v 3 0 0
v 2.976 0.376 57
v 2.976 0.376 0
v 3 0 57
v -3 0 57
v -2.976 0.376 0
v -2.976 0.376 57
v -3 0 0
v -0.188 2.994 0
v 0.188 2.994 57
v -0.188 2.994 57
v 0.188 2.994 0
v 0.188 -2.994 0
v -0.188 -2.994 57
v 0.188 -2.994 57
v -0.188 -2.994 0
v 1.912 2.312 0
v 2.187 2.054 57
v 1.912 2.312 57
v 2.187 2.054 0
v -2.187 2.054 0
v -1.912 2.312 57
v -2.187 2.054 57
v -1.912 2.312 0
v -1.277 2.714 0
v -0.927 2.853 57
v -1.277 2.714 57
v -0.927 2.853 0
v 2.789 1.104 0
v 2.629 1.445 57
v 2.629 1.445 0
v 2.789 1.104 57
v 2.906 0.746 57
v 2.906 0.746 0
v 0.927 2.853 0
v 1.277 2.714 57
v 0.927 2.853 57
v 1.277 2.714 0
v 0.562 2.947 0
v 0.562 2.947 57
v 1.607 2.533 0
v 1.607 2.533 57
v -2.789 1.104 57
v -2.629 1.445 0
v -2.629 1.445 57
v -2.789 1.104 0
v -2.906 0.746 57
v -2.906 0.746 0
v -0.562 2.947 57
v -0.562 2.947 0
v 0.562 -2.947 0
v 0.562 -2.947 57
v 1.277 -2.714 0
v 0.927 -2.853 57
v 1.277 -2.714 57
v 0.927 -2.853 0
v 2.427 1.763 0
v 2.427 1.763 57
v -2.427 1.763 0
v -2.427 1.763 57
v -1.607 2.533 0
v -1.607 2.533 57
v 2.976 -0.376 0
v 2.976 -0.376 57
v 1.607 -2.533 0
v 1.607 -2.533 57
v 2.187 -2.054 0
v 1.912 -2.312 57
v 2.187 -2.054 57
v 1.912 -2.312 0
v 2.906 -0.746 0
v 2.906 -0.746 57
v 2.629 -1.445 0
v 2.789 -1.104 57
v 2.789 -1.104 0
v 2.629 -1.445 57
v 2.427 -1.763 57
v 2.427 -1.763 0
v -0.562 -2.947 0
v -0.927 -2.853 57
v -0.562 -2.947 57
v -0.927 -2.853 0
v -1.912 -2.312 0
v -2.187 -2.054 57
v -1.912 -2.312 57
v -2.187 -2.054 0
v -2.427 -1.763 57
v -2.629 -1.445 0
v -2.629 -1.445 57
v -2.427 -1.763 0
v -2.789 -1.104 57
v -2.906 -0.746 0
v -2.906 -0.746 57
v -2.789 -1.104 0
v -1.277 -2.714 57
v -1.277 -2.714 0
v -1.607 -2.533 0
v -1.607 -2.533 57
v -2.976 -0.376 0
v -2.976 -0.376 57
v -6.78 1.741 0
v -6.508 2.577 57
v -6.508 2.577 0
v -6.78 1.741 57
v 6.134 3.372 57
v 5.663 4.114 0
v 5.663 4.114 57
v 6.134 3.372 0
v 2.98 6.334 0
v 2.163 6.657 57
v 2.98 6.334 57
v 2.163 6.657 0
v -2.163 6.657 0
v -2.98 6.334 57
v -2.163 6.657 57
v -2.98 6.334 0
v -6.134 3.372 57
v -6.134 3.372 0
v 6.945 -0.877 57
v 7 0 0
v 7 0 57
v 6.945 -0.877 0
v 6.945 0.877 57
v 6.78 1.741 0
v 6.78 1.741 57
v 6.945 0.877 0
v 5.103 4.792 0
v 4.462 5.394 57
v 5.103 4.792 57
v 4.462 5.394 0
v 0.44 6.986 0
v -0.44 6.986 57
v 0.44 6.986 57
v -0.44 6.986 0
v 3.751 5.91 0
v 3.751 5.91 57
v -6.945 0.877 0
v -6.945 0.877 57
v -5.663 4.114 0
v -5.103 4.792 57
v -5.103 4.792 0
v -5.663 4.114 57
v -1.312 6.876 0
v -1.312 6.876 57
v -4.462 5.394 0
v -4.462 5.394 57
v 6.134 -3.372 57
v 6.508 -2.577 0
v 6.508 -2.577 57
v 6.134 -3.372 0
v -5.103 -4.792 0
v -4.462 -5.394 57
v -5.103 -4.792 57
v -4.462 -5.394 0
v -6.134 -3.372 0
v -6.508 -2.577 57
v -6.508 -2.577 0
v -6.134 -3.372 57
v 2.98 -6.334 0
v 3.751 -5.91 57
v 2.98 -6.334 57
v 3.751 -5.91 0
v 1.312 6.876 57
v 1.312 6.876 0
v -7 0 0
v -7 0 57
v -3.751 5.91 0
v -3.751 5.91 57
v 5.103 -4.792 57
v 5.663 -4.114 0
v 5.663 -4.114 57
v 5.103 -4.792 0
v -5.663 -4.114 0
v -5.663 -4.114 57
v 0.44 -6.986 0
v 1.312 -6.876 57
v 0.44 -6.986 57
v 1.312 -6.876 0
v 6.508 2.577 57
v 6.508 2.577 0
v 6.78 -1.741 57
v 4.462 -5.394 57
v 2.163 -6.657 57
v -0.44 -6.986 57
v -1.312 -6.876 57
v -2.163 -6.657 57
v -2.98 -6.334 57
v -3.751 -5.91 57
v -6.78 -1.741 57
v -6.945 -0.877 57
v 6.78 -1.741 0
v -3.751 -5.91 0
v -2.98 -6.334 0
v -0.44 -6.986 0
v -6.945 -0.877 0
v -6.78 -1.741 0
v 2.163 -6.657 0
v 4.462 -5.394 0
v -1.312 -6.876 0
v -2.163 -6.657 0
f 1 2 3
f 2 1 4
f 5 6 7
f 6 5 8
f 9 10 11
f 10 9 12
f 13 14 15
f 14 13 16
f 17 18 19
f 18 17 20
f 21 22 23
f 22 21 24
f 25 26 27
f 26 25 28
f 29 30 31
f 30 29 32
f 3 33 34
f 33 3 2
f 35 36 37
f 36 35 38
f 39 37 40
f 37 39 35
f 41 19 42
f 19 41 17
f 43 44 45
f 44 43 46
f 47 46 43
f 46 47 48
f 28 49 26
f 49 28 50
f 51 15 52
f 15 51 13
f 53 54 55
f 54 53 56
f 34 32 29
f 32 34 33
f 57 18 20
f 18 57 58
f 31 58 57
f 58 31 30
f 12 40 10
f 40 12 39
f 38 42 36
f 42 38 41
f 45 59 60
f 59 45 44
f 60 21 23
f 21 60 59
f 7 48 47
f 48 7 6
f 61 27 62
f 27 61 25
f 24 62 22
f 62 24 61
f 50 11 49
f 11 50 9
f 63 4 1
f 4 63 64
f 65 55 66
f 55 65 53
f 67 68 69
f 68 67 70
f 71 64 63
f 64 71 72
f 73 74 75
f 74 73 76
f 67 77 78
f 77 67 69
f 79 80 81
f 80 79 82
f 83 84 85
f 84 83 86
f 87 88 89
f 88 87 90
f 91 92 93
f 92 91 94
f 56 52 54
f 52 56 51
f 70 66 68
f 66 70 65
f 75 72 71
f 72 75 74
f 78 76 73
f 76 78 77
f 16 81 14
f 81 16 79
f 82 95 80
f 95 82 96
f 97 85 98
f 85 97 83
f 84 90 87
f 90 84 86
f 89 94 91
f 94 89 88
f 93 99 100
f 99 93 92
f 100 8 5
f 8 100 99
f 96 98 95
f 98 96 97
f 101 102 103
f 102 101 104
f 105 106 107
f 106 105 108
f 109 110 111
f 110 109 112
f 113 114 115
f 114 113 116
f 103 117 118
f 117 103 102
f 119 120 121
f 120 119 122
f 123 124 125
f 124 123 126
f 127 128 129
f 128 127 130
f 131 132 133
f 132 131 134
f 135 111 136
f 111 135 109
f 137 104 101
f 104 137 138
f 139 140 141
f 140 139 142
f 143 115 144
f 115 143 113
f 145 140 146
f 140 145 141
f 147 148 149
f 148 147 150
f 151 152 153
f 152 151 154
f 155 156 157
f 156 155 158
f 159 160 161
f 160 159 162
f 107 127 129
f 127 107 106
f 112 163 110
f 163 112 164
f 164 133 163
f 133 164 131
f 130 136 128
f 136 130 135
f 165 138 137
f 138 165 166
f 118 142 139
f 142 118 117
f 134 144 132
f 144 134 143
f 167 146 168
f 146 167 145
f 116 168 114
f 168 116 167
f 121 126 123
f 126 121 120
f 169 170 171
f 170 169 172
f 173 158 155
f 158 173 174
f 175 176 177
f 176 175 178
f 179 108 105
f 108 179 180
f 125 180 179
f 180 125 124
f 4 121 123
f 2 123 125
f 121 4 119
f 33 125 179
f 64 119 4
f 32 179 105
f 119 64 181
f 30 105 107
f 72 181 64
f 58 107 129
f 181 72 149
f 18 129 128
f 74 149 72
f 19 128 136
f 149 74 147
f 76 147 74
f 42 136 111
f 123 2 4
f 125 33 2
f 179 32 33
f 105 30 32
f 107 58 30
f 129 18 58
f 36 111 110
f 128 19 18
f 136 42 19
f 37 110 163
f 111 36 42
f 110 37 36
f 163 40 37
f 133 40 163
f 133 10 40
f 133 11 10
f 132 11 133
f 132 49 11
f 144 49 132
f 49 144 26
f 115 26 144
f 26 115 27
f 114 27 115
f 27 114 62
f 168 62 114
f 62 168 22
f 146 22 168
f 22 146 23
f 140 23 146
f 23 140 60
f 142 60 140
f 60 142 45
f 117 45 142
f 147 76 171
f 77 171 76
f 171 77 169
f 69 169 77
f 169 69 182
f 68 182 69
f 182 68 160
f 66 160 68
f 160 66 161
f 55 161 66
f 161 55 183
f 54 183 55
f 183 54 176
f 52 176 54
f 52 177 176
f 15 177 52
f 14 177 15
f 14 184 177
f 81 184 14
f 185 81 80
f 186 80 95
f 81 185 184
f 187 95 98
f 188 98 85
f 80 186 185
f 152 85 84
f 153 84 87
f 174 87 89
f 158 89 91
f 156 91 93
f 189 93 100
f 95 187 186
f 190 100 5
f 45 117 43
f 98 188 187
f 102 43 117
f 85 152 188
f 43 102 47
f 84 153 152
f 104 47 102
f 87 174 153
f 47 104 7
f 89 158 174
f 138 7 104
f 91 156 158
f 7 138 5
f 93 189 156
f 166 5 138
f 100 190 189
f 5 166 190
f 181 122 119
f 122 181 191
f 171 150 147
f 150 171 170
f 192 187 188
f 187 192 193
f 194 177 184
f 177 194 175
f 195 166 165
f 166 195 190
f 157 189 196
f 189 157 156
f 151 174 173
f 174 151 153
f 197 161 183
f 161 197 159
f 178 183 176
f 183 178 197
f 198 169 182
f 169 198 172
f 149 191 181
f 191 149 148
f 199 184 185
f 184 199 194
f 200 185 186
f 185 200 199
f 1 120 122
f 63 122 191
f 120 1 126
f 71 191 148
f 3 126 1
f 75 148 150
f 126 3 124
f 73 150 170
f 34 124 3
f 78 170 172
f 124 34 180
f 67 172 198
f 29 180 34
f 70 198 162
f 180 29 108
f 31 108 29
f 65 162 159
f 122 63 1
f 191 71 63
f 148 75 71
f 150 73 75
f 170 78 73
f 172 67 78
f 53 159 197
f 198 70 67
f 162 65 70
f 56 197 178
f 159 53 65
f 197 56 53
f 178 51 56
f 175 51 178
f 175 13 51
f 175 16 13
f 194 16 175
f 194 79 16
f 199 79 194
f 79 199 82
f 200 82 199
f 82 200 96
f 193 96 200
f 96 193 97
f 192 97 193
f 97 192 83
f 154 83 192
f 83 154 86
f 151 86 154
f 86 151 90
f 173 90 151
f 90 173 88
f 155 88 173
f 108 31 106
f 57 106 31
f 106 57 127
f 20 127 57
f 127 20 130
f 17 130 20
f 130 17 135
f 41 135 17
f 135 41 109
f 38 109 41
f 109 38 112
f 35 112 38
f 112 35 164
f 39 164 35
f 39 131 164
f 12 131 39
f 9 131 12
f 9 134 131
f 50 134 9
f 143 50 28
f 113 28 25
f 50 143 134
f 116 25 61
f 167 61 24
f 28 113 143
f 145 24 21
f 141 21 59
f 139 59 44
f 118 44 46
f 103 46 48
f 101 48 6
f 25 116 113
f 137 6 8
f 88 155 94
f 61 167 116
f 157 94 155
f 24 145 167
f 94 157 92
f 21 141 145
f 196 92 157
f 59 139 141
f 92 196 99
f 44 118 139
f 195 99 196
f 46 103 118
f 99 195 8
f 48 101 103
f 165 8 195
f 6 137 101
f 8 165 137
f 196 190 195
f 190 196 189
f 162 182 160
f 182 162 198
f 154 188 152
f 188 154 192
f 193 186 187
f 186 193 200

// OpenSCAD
$fn = 50;


difference() {
	union() {
		cylinder(h = 57, r = 7.0000000000);
	}
	union() {
		translate(v = [0.0000000000, 0.0000000000, -100.0000000000]) {
			cylinder(h = 200, r = 3.0000000000);
		}
		translate(v = [0.0000000000, 0.0000000000, -100.0000000000]) {
			cylinder(h = 200, r = 3.0000000000);
		}
		translate(v = [0.0000000000, 0.0000000000, -100.0000000000]) {
			cylinder(h = 200, r = 3.0000000000);
		}
		translate(v = [0.0000000000, 0.0000000000, -100.0000000000]) {
			cylinder(h = 200, r = 3.0000000000);
		}
	}
}
